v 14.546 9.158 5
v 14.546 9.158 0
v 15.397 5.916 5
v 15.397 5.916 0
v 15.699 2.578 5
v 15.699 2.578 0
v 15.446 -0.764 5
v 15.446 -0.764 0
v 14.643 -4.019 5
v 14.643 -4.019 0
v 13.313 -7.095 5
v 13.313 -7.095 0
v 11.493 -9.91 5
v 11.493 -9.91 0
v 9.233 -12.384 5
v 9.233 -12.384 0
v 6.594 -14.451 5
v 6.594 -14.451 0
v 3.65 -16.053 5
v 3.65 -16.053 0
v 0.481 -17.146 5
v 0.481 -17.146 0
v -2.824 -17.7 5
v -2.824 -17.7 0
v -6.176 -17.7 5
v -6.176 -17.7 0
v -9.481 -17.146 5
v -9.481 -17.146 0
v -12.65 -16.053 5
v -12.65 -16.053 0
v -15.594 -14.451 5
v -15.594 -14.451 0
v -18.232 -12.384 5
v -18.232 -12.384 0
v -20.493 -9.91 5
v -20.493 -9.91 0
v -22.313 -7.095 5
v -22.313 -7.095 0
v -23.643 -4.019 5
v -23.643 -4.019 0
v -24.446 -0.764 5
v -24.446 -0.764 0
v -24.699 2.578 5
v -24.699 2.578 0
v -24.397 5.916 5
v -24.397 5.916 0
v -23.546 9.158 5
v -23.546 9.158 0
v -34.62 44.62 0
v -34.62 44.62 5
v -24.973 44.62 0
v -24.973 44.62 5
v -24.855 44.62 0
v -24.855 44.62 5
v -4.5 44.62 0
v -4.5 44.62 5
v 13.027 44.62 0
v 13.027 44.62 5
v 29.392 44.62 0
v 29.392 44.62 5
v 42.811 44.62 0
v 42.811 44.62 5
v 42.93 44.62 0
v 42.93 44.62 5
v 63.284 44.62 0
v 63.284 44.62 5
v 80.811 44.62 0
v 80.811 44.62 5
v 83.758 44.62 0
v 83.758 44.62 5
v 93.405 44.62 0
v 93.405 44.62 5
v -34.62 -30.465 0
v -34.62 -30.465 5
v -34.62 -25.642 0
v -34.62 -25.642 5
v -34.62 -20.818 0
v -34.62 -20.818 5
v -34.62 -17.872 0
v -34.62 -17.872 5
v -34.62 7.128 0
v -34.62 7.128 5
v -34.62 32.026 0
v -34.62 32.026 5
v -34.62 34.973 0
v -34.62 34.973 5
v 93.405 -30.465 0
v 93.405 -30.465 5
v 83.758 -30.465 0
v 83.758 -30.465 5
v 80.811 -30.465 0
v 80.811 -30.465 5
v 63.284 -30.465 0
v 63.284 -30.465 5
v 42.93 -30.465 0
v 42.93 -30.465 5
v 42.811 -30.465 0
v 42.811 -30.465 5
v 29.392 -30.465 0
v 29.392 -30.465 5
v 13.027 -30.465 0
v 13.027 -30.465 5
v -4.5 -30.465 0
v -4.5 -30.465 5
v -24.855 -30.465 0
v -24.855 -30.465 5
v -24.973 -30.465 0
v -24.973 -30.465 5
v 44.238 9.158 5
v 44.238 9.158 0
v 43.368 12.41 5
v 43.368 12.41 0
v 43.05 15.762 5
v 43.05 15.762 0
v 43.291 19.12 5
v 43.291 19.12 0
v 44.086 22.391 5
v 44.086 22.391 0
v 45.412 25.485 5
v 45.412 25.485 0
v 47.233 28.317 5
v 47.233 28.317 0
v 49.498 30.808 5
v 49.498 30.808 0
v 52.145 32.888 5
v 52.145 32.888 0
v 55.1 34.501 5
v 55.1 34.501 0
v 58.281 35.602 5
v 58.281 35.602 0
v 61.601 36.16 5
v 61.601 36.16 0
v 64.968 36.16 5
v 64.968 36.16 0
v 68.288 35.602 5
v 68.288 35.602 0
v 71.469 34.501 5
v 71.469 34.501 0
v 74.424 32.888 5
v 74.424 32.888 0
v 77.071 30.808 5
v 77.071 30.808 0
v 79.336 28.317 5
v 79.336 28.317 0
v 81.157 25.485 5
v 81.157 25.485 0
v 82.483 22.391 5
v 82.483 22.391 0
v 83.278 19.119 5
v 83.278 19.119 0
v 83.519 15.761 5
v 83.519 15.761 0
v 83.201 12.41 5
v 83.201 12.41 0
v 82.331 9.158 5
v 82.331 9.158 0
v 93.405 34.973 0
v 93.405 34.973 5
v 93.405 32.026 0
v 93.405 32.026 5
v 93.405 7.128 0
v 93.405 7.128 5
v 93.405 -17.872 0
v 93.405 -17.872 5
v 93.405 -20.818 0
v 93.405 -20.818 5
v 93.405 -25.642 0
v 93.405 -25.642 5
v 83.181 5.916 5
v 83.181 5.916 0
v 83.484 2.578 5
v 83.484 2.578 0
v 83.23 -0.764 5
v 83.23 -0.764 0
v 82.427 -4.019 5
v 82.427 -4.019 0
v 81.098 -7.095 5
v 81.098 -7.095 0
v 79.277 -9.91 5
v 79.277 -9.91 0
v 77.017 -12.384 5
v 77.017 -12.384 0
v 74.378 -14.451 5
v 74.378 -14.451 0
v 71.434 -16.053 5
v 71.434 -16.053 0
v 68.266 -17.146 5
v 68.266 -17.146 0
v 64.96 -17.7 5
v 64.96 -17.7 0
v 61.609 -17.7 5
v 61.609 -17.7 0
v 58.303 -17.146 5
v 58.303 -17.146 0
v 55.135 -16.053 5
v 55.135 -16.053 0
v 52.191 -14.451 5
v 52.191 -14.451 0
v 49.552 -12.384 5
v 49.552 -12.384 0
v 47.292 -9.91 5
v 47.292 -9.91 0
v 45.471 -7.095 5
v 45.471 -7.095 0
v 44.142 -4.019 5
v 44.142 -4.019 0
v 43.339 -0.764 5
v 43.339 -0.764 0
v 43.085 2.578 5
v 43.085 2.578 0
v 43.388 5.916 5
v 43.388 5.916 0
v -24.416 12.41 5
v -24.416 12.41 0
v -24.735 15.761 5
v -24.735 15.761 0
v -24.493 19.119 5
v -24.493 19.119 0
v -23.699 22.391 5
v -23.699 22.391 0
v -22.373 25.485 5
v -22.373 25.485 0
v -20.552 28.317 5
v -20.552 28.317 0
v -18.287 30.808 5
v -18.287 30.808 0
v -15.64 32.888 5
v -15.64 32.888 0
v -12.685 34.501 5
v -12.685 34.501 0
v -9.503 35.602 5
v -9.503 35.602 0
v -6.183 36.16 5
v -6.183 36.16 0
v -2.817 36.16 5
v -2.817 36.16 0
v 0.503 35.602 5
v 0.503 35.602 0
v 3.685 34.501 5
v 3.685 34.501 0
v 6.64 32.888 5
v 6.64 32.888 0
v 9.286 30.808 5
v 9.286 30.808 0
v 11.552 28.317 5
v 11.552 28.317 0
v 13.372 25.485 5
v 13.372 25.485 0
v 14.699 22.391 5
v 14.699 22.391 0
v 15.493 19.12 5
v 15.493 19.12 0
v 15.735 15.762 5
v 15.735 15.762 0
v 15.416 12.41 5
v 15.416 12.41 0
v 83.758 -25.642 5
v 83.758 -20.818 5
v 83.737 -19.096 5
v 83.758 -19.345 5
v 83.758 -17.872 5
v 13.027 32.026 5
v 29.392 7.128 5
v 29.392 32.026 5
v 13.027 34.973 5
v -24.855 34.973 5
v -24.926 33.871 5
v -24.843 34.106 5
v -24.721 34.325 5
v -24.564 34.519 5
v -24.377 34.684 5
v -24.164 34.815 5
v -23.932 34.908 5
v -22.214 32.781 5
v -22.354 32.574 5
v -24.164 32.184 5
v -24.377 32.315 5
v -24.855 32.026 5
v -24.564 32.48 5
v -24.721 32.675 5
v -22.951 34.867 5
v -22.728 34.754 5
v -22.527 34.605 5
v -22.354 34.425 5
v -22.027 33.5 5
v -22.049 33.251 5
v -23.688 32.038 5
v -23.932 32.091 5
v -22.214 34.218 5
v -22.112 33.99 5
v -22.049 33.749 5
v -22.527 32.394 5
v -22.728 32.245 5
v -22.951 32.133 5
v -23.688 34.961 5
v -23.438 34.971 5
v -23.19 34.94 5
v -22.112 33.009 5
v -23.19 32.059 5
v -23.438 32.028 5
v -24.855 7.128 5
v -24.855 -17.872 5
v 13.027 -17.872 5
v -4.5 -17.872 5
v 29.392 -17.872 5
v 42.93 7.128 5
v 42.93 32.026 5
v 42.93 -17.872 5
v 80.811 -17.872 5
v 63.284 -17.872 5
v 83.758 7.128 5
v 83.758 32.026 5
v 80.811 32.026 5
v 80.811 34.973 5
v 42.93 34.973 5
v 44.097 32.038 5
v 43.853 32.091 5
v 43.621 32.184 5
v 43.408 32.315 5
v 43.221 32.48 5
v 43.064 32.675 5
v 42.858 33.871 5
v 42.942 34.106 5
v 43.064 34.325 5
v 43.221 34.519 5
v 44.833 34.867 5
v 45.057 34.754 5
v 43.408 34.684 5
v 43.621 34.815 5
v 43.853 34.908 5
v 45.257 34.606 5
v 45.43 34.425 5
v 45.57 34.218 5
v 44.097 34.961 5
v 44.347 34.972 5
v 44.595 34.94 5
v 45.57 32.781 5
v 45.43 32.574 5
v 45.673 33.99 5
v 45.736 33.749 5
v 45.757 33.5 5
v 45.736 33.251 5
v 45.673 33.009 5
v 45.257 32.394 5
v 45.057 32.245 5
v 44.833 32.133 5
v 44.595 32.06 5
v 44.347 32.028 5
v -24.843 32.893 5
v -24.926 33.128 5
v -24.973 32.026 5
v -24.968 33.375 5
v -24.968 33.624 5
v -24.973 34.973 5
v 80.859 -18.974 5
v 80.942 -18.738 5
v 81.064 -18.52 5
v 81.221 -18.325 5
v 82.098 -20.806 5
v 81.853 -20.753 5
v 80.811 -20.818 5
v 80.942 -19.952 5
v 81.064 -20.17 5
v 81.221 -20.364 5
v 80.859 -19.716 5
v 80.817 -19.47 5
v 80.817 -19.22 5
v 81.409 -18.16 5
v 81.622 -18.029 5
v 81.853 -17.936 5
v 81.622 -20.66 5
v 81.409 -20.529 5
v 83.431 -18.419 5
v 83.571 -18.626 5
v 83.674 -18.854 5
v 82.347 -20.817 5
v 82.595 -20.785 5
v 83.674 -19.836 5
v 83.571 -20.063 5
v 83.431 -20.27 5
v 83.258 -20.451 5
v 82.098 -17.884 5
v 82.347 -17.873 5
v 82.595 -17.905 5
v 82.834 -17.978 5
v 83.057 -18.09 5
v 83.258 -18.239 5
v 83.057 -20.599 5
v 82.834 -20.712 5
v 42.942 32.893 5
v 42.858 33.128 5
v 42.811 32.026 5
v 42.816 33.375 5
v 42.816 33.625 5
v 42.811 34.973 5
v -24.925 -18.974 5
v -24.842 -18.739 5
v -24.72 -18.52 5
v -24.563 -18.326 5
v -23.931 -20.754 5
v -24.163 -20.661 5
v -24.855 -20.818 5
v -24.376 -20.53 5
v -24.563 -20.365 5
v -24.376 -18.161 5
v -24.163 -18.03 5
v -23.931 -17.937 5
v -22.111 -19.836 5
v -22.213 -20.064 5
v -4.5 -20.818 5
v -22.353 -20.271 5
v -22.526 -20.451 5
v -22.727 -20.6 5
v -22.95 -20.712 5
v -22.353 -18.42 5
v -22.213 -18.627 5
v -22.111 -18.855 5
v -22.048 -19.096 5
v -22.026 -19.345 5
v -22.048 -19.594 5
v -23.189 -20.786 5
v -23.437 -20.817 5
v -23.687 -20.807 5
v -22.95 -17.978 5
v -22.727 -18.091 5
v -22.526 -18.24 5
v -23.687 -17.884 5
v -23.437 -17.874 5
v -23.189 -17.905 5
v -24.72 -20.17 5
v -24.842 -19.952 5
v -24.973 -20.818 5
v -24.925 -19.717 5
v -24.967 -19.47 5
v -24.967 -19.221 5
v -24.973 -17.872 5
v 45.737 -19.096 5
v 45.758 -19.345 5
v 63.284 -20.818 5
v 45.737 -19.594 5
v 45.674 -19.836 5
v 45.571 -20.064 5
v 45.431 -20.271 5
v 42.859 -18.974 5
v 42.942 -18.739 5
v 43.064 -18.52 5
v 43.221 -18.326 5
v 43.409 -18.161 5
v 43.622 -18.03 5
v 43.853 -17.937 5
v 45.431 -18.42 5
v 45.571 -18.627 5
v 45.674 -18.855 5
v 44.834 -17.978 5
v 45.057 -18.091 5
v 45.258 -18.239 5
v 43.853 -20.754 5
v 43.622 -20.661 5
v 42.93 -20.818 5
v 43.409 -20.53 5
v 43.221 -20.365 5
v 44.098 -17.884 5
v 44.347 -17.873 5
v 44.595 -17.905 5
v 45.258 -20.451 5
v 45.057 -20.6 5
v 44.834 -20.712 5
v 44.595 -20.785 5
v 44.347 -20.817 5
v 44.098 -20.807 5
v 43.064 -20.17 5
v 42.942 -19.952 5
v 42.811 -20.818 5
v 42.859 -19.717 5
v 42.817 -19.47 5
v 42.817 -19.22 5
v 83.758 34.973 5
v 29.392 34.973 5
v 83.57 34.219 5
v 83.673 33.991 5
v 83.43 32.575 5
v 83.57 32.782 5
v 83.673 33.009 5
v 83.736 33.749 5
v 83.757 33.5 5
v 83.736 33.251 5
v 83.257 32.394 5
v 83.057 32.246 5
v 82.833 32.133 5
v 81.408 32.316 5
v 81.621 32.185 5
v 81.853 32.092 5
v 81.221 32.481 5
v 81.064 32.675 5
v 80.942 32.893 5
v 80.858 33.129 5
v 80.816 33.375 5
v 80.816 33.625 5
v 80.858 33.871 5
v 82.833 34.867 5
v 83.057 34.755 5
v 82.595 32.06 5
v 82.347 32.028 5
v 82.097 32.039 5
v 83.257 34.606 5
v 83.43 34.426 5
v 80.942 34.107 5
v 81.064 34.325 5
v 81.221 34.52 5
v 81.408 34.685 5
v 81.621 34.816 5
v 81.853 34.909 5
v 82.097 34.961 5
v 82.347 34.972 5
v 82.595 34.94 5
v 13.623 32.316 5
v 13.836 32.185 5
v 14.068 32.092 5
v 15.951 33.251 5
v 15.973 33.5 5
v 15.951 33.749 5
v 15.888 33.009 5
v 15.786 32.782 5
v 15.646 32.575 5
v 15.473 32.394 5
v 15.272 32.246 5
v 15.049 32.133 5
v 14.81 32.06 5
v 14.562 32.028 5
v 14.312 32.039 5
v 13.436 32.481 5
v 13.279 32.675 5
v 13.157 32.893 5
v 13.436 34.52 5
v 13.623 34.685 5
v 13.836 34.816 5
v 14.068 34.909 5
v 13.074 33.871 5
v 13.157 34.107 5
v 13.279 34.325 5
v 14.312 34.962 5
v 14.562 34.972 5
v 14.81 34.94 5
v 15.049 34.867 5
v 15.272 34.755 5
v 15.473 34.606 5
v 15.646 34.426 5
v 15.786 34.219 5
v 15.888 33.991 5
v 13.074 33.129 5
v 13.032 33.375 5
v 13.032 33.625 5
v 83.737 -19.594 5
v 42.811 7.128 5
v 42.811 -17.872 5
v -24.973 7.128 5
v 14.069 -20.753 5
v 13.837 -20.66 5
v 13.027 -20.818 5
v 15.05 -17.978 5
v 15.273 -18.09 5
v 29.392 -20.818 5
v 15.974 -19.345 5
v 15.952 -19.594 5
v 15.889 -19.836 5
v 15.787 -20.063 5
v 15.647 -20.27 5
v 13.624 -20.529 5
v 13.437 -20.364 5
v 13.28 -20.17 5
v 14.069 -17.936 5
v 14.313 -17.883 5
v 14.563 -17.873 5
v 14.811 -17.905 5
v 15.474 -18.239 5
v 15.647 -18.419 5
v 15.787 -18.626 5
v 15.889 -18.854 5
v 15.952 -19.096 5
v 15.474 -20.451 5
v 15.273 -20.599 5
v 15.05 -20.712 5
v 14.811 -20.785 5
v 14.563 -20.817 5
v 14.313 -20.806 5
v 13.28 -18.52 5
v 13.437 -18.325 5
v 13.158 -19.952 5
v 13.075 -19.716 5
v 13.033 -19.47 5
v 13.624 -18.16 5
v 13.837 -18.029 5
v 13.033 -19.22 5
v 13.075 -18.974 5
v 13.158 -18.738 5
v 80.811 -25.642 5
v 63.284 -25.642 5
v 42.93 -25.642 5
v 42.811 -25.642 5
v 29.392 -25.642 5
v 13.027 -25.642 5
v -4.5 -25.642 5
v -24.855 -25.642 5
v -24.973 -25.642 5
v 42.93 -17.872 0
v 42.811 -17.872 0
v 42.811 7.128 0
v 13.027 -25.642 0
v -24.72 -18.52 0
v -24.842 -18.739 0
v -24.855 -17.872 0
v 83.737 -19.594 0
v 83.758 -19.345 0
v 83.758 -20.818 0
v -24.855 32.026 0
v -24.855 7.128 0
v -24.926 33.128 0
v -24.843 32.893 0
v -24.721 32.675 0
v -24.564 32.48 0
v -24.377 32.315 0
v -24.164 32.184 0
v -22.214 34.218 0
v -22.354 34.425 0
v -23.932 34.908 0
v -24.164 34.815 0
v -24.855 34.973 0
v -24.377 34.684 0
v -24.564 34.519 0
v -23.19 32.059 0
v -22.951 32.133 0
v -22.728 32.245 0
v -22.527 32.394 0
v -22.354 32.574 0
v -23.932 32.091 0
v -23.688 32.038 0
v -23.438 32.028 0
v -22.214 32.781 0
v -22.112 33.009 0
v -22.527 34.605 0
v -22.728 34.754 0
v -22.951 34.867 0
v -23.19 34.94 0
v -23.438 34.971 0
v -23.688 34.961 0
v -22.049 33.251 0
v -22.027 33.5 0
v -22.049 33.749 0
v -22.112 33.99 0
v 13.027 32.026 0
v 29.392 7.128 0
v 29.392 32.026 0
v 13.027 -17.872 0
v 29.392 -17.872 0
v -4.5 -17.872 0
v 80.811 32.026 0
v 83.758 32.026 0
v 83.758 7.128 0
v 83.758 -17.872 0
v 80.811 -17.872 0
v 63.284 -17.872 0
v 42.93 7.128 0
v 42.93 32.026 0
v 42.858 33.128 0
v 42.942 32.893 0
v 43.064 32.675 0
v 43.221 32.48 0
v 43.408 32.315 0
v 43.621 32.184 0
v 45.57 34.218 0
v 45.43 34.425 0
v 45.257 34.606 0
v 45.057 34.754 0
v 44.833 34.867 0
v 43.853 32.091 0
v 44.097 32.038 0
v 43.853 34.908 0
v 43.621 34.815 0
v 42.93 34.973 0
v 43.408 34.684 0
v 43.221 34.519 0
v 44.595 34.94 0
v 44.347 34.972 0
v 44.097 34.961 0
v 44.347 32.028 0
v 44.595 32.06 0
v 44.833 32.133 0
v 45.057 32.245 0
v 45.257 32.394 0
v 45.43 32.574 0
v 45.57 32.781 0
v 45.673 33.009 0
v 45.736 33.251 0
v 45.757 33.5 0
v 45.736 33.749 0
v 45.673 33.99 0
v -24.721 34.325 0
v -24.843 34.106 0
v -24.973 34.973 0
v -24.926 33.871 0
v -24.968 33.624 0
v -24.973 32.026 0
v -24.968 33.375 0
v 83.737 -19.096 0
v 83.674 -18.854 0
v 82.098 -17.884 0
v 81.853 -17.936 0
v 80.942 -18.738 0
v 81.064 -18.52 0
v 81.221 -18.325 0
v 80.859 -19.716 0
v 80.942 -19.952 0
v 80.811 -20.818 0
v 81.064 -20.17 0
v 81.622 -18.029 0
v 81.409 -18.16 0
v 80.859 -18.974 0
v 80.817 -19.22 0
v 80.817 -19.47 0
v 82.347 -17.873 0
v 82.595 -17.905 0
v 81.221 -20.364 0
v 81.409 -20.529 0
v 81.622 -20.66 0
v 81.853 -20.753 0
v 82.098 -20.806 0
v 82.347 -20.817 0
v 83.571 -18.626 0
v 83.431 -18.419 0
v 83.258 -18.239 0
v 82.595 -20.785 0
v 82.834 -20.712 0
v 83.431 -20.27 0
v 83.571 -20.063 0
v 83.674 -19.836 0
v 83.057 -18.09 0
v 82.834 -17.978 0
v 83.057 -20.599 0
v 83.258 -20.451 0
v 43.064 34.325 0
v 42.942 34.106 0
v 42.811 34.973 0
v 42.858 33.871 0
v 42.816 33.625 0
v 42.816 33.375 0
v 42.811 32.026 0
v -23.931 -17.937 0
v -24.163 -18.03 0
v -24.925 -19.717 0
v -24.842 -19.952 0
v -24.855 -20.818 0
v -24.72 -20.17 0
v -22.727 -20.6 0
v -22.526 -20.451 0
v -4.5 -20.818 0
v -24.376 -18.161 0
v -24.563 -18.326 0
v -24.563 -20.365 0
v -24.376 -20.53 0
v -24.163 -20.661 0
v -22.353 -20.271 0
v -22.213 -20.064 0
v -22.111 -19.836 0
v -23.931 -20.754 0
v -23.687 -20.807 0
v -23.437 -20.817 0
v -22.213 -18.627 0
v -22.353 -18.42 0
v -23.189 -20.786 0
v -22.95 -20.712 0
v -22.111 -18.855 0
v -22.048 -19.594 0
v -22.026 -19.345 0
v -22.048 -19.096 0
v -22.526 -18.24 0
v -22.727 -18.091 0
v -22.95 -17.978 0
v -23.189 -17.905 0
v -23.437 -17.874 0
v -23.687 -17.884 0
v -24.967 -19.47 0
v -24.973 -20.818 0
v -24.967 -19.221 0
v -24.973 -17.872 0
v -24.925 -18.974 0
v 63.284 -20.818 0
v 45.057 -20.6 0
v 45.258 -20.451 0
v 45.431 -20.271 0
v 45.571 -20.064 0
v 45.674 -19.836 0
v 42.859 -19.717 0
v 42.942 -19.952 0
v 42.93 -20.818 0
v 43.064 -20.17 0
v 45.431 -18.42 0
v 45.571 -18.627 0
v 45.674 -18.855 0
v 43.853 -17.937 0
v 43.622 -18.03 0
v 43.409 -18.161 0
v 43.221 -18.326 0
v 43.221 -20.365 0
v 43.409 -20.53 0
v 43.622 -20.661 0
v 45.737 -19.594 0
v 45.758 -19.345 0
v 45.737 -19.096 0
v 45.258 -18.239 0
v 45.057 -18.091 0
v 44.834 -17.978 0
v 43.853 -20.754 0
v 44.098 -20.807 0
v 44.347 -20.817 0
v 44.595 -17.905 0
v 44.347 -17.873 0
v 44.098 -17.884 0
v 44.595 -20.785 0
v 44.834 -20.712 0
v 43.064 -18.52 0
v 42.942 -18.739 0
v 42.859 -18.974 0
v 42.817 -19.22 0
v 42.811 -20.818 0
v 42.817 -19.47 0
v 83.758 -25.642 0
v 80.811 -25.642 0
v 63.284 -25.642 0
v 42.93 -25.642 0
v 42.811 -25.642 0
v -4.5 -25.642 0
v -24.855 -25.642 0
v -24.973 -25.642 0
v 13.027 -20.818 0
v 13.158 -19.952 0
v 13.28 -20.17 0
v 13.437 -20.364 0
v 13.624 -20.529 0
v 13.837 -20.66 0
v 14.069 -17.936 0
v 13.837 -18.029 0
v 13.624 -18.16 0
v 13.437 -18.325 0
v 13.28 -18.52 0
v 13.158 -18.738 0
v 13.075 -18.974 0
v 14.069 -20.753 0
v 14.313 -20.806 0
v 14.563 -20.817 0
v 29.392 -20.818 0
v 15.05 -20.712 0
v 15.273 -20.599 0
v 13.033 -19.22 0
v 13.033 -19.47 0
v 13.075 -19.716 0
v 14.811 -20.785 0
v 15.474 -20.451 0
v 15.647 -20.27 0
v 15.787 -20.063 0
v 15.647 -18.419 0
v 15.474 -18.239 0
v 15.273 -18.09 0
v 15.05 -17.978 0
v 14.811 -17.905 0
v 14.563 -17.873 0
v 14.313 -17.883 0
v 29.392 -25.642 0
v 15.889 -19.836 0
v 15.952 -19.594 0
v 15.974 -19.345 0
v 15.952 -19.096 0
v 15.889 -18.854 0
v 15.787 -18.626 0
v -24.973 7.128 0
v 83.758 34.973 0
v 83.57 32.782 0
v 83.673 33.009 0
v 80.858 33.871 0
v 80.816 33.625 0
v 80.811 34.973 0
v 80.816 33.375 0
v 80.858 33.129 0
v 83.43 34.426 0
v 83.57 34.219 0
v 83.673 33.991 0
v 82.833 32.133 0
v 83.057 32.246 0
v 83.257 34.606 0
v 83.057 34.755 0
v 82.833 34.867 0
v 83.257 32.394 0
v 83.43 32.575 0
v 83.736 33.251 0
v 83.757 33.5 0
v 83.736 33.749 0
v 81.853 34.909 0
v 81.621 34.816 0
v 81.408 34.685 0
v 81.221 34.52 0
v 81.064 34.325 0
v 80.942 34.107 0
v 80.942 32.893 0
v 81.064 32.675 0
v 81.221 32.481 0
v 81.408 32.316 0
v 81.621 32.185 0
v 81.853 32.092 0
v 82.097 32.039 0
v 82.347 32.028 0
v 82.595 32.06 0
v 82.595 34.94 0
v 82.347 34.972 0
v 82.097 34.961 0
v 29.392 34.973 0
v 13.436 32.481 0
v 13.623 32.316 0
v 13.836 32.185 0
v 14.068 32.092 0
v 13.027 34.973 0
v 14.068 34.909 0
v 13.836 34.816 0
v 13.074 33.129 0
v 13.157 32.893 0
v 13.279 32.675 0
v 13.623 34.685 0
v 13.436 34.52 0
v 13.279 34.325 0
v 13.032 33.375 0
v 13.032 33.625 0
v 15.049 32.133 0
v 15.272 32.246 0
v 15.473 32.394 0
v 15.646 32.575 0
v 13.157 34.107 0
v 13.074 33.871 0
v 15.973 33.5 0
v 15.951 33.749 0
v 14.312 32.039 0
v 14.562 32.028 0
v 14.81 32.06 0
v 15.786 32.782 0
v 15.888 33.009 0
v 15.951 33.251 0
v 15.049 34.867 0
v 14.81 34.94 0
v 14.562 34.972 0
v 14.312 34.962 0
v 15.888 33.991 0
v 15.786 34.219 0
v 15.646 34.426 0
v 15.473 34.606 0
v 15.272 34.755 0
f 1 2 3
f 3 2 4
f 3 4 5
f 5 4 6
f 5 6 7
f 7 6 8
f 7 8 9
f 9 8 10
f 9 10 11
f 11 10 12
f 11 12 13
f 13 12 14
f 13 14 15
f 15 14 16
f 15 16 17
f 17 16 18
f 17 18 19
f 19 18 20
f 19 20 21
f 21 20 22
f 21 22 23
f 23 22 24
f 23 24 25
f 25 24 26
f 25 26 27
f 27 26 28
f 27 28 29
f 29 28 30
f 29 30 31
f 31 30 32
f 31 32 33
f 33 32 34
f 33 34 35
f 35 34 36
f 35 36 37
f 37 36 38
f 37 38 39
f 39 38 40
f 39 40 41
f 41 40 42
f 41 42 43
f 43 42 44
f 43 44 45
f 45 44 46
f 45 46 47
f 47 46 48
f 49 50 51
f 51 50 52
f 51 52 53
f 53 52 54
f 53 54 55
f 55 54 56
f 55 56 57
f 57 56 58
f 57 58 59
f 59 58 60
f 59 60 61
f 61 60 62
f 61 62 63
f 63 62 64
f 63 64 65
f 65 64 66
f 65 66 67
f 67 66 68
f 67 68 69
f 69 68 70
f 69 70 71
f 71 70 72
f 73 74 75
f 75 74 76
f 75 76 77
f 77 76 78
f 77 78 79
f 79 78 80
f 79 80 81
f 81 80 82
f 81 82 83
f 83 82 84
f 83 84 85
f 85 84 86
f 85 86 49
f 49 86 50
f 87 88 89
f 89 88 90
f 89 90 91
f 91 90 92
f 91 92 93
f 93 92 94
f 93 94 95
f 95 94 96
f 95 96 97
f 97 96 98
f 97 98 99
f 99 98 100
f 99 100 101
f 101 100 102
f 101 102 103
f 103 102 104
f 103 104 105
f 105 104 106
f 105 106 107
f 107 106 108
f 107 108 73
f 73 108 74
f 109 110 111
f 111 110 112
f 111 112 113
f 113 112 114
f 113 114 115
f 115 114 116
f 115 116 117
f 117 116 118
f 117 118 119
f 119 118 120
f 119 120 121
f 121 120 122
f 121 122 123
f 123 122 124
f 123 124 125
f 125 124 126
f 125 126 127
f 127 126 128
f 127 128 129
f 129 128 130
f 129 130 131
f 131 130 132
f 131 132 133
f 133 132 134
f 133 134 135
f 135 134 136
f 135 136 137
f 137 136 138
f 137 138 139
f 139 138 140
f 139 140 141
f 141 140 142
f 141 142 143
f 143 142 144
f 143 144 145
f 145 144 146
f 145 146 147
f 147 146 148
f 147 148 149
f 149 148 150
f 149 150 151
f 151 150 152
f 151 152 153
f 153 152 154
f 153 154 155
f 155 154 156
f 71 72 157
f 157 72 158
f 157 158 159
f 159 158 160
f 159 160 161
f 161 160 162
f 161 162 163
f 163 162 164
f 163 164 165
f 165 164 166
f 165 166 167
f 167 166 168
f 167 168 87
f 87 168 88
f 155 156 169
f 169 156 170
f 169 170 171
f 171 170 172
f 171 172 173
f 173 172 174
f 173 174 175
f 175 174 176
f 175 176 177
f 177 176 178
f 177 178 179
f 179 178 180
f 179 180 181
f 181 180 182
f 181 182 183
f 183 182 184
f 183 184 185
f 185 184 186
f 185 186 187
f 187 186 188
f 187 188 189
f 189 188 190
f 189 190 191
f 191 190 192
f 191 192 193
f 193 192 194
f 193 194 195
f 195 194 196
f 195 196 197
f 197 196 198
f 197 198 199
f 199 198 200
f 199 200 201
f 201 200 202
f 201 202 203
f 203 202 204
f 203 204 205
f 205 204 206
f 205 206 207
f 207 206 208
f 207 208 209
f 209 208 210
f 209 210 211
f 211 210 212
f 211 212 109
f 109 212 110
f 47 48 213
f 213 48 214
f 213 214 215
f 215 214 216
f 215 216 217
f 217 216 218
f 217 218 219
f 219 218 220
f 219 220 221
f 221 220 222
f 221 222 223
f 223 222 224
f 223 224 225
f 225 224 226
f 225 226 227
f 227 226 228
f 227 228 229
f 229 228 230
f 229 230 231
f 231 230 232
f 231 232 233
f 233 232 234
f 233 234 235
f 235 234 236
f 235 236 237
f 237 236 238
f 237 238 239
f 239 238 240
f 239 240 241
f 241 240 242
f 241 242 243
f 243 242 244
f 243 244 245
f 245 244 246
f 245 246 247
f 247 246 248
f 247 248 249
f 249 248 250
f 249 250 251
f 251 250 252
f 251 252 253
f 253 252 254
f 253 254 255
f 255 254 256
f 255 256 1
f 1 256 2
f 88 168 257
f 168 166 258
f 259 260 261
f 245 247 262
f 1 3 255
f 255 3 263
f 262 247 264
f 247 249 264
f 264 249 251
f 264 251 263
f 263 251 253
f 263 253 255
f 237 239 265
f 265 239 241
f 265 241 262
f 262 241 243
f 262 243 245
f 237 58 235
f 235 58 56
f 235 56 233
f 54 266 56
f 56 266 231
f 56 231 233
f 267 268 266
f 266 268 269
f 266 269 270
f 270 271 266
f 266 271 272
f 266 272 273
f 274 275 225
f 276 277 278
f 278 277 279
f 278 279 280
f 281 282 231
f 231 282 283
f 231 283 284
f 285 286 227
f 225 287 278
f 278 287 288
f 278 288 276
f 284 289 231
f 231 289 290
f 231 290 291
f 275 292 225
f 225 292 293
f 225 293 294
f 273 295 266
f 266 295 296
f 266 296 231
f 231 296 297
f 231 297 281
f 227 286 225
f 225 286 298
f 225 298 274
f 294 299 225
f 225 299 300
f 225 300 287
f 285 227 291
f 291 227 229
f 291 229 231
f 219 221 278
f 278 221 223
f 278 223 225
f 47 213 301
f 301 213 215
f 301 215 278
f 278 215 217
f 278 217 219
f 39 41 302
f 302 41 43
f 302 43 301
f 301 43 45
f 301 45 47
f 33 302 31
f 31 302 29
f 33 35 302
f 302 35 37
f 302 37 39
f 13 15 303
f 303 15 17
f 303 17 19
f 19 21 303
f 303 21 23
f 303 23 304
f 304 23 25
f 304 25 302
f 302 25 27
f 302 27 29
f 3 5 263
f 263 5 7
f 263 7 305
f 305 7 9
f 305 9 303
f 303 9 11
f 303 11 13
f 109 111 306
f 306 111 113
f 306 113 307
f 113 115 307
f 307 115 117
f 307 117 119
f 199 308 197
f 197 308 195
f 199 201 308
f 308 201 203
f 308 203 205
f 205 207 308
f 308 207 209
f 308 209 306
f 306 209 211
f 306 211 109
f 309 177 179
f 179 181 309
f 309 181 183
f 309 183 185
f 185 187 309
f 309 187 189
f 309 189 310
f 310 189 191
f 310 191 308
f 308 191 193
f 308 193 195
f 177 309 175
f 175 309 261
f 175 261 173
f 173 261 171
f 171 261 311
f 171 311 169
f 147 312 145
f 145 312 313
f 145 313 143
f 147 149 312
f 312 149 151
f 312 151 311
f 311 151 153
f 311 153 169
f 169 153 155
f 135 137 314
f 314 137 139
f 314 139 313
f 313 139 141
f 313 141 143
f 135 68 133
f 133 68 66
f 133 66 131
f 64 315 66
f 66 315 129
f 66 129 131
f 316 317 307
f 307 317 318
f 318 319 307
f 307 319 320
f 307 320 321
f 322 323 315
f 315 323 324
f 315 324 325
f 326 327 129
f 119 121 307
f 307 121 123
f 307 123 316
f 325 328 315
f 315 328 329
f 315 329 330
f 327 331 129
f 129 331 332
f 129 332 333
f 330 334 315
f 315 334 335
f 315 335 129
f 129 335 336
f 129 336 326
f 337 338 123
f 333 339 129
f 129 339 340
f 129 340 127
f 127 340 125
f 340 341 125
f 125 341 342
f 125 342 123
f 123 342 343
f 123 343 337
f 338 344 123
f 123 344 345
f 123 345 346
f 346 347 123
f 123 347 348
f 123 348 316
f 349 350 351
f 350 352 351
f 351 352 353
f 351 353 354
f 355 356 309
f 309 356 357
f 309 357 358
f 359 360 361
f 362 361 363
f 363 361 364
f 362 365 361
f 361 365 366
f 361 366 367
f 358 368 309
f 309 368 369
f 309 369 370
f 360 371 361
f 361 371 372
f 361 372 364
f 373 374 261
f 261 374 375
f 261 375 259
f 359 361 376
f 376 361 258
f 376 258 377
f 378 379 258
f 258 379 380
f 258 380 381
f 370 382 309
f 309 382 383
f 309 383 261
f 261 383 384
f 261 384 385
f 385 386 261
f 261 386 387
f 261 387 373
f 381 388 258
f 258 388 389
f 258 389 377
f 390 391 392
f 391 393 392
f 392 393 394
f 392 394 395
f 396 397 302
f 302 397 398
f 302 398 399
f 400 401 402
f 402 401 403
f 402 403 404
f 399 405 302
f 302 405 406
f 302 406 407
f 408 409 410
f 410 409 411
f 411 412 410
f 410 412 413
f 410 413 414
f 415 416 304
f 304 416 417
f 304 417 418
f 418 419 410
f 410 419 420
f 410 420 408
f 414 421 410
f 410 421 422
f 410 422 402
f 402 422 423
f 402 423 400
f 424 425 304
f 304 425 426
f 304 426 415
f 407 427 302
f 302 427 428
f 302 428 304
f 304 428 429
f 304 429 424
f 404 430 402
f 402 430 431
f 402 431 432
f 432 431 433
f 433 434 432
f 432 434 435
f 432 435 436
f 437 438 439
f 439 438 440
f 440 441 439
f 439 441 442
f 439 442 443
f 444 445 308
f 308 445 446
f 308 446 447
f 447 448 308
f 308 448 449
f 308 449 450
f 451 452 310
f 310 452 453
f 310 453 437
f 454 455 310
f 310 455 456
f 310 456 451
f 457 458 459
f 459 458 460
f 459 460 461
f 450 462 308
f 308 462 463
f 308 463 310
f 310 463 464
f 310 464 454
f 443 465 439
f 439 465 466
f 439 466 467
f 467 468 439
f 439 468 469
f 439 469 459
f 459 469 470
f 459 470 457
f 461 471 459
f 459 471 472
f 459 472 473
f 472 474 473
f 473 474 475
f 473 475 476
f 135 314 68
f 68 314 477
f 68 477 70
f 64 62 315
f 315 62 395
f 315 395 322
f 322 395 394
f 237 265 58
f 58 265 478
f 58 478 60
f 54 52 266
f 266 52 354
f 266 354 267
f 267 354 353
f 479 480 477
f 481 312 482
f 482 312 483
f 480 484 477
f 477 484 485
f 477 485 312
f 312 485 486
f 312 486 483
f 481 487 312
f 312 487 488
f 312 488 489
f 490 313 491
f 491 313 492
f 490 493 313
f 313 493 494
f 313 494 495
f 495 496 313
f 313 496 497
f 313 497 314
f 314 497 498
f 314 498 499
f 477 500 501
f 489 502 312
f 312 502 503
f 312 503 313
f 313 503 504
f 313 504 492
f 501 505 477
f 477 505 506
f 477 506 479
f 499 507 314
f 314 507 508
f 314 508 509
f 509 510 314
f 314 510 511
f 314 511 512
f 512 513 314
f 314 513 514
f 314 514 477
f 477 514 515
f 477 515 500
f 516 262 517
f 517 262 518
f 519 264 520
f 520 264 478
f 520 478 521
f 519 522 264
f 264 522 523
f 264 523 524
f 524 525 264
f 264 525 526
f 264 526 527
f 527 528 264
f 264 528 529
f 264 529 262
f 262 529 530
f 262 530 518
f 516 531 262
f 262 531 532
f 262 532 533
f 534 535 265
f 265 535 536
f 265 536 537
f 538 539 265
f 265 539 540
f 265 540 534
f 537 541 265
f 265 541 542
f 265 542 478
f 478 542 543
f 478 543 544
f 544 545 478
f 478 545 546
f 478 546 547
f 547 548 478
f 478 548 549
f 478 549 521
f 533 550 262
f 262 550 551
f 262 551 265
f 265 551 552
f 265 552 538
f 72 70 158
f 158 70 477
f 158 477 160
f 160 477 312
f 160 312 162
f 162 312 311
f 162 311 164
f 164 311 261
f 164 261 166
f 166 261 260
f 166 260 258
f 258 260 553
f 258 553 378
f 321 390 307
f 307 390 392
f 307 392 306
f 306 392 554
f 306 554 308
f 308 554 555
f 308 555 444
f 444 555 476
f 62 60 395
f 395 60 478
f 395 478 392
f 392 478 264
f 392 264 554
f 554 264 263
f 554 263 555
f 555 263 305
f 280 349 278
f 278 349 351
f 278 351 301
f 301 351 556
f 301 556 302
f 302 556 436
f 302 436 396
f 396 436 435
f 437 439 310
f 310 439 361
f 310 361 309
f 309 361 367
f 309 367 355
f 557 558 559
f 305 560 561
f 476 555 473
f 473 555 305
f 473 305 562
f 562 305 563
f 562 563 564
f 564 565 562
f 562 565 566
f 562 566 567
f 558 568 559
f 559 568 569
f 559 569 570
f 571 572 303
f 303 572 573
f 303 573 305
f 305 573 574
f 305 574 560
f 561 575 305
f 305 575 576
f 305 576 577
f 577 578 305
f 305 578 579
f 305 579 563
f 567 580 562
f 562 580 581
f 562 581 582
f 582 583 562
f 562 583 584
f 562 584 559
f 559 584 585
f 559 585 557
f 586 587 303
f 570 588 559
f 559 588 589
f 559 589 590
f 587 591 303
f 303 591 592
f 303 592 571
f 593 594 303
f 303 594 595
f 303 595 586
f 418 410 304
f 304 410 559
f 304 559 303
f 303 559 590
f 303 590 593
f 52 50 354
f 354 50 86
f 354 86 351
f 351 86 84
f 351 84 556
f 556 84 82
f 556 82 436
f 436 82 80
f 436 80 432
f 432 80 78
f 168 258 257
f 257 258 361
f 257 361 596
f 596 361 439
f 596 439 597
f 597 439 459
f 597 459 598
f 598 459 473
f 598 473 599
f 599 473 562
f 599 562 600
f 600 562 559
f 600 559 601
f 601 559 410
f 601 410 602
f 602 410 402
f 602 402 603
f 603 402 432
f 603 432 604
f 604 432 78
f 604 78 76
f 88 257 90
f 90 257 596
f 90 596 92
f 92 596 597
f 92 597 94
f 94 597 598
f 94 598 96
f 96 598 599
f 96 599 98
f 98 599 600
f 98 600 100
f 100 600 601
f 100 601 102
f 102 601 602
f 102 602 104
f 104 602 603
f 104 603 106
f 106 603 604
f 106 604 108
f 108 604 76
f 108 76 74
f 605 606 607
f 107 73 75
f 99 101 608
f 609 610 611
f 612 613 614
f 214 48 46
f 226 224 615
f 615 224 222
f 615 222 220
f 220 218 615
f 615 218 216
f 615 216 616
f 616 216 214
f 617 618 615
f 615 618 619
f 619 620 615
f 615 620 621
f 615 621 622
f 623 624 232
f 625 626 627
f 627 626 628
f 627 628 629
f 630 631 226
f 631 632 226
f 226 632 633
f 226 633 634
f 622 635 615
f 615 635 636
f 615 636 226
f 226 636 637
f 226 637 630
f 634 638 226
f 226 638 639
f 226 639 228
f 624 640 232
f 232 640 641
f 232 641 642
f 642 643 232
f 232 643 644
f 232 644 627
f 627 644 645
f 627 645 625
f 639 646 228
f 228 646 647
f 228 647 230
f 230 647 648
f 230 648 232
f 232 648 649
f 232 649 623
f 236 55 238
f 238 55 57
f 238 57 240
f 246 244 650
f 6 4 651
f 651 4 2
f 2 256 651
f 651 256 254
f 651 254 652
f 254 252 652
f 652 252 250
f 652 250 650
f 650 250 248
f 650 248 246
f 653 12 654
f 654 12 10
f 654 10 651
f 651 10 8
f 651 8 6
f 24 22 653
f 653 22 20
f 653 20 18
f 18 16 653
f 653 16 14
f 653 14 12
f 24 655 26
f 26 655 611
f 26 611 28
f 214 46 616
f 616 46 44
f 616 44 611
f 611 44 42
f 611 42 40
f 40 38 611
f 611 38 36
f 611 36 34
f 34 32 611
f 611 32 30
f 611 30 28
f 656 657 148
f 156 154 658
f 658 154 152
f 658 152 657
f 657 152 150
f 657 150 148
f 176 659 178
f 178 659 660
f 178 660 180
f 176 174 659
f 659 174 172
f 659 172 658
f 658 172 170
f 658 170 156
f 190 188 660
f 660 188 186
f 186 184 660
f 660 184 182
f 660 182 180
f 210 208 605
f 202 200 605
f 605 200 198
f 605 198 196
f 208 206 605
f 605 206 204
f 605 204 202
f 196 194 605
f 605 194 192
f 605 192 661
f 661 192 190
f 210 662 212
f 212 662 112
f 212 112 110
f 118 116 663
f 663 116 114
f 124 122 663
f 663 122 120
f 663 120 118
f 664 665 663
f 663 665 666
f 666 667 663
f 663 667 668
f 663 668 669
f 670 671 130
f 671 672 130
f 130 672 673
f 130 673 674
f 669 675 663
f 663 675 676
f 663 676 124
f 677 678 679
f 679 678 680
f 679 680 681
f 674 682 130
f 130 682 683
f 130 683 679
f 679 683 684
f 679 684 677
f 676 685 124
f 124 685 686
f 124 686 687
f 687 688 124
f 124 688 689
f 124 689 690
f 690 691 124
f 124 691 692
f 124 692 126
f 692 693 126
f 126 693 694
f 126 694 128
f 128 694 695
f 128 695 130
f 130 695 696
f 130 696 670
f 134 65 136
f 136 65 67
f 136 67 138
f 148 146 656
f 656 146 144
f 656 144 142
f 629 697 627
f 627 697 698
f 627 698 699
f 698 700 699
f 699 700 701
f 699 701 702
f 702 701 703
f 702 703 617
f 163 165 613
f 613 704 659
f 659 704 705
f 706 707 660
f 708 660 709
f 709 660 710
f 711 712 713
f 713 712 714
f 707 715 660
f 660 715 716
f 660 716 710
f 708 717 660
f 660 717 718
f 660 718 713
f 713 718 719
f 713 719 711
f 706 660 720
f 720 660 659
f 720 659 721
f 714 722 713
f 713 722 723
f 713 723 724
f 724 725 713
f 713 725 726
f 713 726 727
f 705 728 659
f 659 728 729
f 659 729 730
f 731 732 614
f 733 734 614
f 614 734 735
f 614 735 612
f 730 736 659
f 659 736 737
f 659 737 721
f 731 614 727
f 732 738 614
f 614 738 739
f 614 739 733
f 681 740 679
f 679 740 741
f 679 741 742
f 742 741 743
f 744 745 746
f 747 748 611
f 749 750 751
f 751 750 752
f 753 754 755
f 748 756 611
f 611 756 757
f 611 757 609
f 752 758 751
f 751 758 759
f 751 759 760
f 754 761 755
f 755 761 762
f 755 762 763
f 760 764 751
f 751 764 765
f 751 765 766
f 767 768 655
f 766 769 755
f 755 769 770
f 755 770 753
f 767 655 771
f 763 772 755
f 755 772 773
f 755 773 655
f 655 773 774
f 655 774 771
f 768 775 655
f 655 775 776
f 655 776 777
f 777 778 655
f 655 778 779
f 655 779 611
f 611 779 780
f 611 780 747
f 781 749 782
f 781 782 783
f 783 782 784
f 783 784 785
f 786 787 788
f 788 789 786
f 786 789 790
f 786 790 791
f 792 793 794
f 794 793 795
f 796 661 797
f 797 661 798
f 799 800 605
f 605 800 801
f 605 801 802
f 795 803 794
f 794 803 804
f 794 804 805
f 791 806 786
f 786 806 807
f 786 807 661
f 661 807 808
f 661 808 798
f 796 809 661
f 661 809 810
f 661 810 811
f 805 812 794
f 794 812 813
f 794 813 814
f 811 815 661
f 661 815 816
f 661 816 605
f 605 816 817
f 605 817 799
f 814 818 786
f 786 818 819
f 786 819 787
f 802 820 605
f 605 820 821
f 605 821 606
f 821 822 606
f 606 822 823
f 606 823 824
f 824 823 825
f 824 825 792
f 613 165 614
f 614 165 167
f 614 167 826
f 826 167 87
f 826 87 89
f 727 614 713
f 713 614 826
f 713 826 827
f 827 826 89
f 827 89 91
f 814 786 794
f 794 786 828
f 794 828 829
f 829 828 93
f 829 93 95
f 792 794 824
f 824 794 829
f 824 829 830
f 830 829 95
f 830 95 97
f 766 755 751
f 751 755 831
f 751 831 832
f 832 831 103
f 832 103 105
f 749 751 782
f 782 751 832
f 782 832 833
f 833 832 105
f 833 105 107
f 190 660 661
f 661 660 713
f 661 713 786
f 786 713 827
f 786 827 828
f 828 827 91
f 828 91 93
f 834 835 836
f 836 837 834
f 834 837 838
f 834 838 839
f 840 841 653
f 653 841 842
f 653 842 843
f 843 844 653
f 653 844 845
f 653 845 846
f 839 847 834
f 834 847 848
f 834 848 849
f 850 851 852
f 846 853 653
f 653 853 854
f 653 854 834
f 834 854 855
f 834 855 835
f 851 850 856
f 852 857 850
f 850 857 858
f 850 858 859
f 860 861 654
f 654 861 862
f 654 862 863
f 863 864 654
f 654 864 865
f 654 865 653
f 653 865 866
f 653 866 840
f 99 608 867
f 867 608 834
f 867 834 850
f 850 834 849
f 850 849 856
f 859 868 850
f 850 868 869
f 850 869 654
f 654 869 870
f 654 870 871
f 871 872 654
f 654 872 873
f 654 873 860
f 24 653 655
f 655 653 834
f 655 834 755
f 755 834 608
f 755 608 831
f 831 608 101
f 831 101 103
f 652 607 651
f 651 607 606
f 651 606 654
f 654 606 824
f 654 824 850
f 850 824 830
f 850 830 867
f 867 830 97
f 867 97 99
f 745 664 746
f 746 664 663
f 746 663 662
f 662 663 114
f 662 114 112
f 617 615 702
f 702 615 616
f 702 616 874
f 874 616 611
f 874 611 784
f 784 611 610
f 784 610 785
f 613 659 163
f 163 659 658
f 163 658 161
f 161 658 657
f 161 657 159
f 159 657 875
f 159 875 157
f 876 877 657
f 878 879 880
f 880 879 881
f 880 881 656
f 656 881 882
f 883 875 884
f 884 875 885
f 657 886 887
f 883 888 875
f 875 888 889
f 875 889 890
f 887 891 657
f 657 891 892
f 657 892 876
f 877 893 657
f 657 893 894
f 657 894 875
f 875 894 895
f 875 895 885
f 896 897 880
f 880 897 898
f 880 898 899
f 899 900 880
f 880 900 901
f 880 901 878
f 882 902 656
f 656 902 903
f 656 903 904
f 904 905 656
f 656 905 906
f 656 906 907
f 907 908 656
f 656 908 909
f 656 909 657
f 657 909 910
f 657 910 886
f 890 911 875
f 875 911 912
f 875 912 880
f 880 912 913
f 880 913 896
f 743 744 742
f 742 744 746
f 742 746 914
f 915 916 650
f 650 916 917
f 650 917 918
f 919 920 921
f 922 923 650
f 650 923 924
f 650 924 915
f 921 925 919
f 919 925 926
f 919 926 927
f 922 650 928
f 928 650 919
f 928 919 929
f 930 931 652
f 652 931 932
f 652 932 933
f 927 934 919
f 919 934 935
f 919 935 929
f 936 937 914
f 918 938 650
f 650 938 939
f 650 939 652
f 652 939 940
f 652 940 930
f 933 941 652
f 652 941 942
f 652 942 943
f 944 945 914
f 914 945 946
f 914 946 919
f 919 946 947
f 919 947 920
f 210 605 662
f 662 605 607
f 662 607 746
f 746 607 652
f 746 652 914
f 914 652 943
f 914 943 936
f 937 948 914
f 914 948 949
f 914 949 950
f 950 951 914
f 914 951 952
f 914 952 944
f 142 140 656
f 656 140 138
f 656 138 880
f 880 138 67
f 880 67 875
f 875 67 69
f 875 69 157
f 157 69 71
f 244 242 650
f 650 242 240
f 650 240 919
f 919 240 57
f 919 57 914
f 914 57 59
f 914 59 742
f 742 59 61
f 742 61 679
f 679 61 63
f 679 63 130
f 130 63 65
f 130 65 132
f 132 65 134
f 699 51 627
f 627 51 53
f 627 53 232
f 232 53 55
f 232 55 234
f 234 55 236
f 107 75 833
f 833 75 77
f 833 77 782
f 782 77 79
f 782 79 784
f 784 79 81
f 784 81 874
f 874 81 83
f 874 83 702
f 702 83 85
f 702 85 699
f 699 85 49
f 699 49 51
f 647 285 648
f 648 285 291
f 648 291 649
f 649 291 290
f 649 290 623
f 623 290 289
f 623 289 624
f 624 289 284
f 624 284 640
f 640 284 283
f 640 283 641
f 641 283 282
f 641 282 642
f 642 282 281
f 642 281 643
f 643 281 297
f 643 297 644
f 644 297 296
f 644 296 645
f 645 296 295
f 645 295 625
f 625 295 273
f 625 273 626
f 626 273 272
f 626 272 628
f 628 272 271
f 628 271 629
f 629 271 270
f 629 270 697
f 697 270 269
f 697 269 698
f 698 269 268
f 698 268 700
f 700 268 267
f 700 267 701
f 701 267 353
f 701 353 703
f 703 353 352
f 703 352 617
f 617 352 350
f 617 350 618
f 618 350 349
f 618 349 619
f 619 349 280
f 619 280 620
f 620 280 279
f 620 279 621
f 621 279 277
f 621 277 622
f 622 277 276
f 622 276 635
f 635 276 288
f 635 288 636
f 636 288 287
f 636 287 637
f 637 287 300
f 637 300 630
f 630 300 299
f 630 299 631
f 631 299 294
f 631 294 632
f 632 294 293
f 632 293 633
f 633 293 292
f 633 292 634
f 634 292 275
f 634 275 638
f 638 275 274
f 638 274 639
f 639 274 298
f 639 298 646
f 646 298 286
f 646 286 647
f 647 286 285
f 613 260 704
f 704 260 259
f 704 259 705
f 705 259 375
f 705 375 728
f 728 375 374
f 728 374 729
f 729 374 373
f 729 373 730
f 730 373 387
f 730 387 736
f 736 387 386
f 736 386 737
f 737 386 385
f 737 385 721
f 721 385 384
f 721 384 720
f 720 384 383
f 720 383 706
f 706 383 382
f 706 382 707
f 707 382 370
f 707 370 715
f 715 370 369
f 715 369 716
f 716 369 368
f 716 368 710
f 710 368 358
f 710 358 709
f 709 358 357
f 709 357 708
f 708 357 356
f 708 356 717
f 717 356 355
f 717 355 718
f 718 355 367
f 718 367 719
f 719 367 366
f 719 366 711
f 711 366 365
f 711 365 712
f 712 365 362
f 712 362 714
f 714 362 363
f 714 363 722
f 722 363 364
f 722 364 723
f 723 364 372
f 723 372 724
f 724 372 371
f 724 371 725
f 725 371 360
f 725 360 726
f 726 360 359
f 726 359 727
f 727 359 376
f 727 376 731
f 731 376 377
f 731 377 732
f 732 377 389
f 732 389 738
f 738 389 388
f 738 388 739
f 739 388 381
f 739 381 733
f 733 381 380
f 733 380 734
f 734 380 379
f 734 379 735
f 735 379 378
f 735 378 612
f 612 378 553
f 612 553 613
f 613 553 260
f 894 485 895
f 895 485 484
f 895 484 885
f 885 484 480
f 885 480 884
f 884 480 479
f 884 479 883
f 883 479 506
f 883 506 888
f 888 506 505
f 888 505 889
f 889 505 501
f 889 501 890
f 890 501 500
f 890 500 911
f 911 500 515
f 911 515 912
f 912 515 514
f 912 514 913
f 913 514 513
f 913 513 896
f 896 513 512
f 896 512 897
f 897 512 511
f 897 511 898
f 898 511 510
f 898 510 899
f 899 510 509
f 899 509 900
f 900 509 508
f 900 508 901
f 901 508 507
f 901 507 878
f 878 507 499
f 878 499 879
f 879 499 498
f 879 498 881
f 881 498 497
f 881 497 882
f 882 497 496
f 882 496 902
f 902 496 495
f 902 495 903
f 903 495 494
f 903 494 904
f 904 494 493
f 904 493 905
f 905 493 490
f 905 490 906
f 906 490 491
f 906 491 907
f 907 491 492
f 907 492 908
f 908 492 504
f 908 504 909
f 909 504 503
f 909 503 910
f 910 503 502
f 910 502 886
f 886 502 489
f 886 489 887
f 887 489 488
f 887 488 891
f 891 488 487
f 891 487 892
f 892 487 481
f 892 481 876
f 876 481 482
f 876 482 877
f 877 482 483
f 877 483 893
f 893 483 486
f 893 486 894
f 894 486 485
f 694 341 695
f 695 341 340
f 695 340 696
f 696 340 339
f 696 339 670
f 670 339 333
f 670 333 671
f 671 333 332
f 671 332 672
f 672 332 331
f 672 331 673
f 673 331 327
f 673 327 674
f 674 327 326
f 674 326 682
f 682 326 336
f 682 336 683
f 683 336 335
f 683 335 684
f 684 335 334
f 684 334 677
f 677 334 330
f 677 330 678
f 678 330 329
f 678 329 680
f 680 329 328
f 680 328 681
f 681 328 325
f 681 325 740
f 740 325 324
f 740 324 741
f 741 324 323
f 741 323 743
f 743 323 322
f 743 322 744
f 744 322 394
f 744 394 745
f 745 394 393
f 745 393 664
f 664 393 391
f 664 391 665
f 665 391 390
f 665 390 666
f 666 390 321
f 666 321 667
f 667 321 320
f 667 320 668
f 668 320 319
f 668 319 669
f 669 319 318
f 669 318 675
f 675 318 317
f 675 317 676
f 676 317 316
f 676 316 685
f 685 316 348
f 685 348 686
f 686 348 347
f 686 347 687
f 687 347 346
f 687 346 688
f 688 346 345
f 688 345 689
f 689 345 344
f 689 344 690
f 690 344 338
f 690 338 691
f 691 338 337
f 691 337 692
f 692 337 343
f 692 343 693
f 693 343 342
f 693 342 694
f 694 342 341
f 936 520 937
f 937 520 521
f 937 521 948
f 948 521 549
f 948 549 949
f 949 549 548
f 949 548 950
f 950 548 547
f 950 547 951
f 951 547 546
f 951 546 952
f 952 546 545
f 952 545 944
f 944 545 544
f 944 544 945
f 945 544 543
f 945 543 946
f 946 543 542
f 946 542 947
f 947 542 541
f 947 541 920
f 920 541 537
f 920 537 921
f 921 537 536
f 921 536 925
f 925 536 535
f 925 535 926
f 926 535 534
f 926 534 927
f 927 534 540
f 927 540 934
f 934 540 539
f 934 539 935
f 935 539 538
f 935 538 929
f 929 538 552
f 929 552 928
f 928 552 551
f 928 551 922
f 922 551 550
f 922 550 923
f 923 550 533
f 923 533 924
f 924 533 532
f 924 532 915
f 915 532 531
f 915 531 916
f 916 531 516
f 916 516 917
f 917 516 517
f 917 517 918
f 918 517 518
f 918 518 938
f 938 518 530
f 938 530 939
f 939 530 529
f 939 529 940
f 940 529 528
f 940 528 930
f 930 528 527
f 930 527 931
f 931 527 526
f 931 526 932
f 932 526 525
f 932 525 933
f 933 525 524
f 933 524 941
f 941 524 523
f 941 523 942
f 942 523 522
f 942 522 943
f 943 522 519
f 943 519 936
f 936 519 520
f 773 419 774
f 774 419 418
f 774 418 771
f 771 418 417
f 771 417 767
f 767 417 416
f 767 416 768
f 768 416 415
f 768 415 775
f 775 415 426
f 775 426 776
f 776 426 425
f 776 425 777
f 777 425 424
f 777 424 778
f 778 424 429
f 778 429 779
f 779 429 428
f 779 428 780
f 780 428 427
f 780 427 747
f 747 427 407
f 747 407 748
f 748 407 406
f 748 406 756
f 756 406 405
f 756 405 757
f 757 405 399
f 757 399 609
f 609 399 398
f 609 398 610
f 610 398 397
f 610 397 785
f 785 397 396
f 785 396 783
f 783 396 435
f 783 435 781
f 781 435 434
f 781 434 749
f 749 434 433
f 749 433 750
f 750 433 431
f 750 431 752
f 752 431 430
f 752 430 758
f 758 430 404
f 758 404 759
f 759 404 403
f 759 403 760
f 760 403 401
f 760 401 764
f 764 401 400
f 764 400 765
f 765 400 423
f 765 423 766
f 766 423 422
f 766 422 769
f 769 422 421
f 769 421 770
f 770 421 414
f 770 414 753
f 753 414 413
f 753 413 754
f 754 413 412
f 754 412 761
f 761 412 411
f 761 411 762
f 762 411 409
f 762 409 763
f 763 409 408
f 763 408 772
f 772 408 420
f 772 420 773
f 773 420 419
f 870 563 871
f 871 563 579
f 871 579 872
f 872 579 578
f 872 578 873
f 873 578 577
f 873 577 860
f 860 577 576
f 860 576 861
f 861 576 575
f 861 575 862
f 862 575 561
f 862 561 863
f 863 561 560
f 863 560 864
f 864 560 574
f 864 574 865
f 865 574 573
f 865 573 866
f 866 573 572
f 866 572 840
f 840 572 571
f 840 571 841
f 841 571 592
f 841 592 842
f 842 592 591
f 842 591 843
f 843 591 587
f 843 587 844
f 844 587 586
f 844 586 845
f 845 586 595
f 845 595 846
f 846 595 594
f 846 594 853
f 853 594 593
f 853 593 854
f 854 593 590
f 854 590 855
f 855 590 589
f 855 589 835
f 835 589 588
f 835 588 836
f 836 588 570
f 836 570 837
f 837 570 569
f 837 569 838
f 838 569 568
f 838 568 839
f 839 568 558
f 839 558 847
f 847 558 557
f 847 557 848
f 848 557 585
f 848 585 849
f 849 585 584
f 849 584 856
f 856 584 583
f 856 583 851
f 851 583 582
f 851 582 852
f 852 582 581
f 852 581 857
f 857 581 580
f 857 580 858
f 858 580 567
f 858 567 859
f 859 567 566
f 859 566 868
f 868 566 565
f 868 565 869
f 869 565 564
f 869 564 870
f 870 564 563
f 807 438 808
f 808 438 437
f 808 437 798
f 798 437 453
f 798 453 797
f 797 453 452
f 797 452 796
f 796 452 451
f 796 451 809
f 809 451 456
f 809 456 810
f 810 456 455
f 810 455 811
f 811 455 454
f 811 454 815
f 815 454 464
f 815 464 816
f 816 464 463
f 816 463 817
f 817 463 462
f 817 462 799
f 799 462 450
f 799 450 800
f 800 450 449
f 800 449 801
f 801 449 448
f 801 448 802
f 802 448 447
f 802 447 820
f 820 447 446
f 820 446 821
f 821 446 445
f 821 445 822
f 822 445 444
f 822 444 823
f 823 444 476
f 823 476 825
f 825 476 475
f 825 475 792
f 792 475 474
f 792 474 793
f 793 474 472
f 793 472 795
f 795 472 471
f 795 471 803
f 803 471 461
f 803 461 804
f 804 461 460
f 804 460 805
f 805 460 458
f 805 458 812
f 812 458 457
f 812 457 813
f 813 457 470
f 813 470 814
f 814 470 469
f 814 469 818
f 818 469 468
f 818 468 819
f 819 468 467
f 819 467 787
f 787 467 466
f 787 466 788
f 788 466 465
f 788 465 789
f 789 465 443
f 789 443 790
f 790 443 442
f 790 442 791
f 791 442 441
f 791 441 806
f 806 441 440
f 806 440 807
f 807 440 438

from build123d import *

# Parameters (mm, degrees)
SKETCH1_W           = 64.012274628
SKETCH1_H           = 75.085000506
BOSS_EXTRUDE1_DEPTH = 5
SKETCH7_R           = 1.4732
CUT_EXTRUDE1_DEPTH  = 10


with BuildPart() as part:
    # Sketch1 → Boss-Extrude1 (new body)
    # profile 1 of 2: a face of its own
    with BuildSketch(Plane.XY):
        with Locations((61.398411242, 7.077500224)):
            Rectangle(SKETCH1_W, SKETCH1_H)
        with BuildLine():
            ThreePointArc((83.484398078, 2.429730903), (59.871437613, -17.479677368), (44.238109553, 9.157805497))
            ThreePointArc((44.238109553, 9.157805497), (59.81501285, 35.930775127), (83.520814038, 15.994205484))
            ThreePointArc((83.520814038, 15.994205484), (83.22114917, 12.52456978), (82.331029644, 9.157693158))
            ThreePointArc((82.331029644, 9.157693158), (83.193968093, 5.842784333), (83.484398078, 2.429730903))
        make_face(mode=Mode.SUBTRACT)
    # profile 2 of 2: a face of its own
    with BuildSketch(Plane.XY):
        with Locations((-2.613863386, 7.077500224)):
            Rectangle(SKETCH1_W, SKETCH1_H)
        with BuildLine():
            ThreePointArc((15.69984642, 2.429730903), (-7.913055331, -17.479687433), (-23.546481788, 9.157693158))
            ThreePointArc((-23.546481788, 9.157693158), (-7.969677608, 35.930764895), (15.736182375, 15.994205484))
            ThreePointArc((15.736182375, 15.994205484), (15.436527739, 12.524628574), (14.546438303, 9.157805497))
            ThreePointArc((14.546438303, 9.157805497), (15.409406369, 5.842843047), (15.69984642, 2.429730903))
        make_face(mode=Mode.SUBTRACT)
    extrude(amount=BOSS_EXTRUDE1_DEPTH)

    # Sketch7 → Cut-Extrude1 (cut)
    with BuildSketch(Plane.XY.offset(5)):
        with Locations((-23.500584488, 33.499560055)):
            Circle(SKETCH7_R)
        with Locations((14.49941543, 33.50027263)):
            Circle(SKETCH7_R)
        with Locations((-23.49959354, -19.345440441)):
            Circle(SKETCH7_R)
        with Locations((14.500406379, -19.344727866)):
            Circle(SKETCH7_R)
        with Locations((44.284829686, -19.345328379)):
            Circle(SKETCH7_R)
        with Locations((44.284150424, 33.499672122)):
            Circle(SKETCH7_R)
        with Locations((82.284150347, 33.500160568)):
            Circle(SKETCH7_R)
        with Locations((82.284829608, -19.344839933)):
            Circle(SKETCH7_R)
    extrude(amount=-CUT_EXTRUDE1_DEPTH, mode=Mode.SUBTRACT)


solid = part.part
